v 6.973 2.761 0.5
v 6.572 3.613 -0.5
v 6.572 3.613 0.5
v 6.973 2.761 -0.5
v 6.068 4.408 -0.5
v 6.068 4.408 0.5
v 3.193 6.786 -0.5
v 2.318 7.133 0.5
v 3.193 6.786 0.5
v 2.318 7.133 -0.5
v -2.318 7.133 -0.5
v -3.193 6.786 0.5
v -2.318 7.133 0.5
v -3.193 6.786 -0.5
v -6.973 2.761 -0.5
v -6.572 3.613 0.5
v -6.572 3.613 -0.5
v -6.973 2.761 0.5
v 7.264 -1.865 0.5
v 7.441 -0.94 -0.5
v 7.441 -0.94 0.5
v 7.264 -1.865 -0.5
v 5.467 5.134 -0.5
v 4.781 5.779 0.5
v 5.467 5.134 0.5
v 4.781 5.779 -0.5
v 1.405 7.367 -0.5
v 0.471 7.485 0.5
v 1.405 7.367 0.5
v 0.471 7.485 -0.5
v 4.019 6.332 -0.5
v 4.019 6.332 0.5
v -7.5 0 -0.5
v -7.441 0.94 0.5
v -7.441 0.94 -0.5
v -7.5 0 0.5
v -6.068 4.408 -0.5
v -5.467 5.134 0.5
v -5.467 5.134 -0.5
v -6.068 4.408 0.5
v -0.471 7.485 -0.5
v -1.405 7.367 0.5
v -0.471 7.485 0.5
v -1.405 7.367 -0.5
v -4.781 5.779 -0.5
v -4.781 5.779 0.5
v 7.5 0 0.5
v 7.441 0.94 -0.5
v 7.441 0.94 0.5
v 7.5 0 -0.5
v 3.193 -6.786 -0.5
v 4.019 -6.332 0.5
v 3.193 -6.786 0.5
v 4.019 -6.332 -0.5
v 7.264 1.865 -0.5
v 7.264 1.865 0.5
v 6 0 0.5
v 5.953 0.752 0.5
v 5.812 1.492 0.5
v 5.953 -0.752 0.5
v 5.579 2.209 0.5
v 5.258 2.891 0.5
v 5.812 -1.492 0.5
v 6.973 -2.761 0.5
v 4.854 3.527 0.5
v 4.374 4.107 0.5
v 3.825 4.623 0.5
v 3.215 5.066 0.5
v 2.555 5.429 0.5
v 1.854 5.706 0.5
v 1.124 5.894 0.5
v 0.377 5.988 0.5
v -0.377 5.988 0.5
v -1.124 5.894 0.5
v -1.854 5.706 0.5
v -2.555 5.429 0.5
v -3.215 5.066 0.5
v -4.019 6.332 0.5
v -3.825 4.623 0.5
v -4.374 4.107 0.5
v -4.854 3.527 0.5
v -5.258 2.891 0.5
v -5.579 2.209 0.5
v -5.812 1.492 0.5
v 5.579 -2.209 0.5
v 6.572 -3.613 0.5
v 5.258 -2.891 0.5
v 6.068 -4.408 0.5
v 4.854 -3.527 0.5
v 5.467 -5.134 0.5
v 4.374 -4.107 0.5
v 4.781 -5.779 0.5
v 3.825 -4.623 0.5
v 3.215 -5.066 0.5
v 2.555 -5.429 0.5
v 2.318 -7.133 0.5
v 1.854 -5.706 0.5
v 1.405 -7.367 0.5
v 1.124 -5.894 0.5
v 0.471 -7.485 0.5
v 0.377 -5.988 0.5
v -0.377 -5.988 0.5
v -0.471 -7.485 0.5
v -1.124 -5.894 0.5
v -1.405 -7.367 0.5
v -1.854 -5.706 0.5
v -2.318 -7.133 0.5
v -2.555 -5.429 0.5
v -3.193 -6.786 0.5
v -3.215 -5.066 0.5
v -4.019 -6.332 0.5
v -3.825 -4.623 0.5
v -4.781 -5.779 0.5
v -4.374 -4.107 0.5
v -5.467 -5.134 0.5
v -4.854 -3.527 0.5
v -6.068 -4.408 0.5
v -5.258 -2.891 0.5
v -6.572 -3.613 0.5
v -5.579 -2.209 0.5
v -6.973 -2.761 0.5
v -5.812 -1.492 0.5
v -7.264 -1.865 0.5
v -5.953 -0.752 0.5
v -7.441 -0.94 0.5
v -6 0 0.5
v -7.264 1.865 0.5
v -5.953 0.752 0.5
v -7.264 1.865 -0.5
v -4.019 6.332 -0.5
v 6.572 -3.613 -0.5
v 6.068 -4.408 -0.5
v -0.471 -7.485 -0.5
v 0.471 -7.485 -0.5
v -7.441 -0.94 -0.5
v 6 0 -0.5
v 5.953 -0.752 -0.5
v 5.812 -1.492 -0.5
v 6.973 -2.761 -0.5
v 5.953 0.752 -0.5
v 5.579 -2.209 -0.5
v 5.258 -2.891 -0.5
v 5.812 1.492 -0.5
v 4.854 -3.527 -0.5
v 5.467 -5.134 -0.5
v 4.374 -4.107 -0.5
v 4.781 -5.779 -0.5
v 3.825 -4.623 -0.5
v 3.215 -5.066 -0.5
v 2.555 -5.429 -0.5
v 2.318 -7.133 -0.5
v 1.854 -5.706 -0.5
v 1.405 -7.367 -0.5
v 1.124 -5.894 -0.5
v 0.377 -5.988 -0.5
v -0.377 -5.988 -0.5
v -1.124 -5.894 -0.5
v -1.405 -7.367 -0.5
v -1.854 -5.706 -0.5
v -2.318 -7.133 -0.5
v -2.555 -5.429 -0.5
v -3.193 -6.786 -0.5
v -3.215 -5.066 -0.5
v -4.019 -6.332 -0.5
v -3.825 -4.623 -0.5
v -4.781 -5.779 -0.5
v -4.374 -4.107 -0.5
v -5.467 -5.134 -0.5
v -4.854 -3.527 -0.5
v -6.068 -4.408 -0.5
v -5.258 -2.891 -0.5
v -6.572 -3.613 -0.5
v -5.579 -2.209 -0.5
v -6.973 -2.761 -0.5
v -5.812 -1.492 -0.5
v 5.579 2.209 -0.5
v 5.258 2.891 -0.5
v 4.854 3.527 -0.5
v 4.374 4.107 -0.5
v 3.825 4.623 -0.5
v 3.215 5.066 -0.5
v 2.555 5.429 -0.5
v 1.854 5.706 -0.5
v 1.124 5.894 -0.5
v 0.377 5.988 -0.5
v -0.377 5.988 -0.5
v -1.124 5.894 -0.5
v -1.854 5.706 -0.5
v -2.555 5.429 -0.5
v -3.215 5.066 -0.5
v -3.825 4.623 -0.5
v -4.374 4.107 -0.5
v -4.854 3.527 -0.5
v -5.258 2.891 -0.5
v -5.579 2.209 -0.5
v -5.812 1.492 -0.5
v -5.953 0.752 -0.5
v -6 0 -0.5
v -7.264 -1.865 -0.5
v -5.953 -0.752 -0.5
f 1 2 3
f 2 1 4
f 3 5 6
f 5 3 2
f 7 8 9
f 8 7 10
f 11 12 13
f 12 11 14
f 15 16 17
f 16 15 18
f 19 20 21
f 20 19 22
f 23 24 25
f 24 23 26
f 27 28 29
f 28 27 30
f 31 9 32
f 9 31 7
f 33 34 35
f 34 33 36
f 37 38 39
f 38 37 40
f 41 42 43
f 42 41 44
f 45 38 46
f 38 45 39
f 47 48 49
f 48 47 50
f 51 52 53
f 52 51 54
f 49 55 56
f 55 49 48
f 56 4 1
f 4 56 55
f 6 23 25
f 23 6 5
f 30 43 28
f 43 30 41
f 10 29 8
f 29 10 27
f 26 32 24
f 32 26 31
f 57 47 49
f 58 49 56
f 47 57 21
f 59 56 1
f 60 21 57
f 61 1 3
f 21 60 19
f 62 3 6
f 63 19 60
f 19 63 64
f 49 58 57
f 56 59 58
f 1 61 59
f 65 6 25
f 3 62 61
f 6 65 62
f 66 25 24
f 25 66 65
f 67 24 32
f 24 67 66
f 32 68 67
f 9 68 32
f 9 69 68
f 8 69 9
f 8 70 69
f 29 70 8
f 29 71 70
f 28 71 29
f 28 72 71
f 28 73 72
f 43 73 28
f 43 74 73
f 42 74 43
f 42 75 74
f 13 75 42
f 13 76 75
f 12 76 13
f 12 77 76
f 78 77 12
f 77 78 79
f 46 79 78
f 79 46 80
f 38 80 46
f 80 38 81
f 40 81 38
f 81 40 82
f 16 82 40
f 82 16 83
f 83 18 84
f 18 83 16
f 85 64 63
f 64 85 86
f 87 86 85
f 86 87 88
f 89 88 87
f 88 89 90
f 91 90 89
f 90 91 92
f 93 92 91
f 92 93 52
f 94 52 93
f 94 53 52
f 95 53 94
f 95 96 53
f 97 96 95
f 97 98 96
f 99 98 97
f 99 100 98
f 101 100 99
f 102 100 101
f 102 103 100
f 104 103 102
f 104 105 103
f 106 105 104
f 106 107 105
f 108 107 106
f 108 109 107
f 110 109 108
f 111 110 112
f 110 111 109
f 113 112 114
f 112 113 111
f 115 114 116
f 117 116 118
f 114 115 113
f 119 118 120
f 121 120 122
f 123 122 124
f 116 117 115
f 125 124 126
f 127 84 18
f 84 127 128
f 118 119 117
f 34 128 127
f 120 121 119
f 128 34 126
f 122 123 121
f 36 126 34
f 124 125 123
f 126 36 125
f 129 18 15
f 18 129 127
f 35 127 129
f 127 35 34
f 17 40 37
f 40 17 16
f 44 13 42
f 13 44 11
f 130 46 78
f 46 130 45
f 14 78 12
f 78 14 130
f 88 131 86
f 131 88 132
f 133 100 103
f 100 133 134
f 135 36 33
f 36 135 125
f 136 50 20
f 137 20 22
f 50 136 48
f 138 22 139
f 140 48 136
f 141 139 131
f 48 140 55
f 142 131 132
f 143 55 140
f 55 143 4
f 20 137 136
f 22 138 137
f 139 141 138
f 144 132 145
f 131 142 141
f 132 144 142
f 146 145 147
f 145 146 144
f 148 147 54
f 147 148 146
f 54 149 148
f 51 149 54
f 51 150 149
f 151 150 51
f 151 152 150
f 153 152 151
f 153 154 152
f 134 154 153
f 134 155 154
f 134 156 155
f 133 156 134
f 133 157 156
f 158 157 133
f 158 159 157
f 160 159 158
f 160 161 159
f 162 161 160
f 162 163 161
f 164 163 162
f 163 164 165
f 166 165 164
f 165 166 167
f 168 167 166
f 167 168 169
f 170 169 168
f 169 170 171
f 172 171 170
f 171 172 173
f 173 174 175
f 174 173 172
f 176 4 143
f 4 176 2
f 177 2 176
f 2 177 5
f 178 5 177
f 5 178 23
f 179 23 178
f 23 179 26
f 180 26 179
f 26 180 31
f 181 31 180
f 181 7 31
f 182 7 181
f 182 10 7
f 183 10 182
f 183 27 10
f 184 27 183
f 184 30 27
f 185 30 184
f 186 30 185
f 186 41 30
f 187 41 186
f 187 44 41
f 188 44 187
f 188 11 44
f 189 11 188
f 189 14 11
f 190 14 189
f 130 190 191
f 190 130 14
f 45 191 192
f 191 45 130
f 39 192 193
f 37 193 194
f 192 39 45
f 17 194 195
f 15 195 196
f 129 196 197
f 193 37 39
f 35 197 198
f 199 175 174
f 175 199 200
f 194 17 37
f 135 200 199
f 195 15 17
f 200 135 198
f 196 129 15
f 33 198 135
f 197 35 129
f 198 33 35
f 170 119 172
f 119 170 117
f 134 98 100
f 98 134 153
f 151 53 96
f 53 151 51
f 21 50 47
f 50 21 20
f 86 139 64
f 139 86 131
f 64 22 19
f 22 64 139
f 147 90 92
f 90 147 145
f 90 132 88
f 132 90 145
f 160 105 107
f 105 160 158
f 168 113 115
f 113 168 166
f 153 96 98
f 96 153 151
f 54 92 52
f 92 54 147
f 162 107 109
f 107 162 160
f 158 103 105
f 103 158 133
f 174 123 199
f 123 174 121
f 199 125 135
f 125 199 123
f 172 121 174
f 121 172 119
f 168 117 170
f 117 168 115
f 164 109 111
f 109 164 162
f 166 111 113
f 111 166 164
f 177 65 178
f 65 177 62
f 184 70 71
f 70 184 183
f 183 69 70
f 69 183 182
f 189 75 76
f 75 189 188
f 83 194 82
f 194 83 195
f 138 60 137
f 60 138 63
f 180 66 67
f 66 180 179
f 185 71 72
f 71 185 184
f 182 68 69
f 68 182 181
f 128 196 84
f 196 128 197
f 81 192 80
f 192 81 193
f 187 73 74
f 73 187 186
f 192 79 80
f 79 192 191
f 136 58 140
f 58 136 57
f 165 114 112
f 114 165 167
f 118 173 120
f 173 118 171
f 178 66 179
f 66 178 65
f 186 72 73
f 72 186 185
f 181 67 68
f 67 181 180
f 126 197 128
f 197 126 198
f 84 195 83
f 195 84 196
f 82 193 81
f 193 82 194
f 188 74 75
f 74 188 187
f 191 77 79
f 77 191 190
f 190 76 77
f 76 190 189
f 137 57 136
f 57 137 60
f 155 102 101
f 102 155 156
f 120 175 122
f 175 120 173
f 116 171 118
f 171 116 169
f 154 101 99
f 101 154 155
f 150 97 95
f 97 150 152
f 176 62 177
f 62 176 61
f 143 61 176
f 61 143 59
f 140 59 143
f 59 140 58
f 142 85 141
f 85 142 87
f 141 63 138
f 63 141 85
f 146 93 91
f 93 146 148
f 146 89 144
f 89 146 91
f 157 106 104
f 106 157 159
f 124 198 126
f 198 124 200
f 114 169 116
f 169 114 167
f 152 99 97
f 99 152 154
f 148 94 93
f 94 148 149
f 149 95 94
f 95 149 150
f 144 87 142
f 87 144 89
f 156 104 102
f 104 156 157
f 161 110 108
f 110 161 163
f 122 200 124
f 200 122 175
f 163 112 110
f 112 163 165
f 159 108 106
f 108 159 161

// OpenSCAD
$fn = 50;


difference() {
	union() {
		translate(v = [0, 0, -0.5000000000]) {
			cylinder(h = 1, r = 7.5000000000);
		}
	}
	union() {
		translate(v = [0, 0, -100.0000000000]) {
			cylinder(h = 200, r = 6);
		}
	}
}
